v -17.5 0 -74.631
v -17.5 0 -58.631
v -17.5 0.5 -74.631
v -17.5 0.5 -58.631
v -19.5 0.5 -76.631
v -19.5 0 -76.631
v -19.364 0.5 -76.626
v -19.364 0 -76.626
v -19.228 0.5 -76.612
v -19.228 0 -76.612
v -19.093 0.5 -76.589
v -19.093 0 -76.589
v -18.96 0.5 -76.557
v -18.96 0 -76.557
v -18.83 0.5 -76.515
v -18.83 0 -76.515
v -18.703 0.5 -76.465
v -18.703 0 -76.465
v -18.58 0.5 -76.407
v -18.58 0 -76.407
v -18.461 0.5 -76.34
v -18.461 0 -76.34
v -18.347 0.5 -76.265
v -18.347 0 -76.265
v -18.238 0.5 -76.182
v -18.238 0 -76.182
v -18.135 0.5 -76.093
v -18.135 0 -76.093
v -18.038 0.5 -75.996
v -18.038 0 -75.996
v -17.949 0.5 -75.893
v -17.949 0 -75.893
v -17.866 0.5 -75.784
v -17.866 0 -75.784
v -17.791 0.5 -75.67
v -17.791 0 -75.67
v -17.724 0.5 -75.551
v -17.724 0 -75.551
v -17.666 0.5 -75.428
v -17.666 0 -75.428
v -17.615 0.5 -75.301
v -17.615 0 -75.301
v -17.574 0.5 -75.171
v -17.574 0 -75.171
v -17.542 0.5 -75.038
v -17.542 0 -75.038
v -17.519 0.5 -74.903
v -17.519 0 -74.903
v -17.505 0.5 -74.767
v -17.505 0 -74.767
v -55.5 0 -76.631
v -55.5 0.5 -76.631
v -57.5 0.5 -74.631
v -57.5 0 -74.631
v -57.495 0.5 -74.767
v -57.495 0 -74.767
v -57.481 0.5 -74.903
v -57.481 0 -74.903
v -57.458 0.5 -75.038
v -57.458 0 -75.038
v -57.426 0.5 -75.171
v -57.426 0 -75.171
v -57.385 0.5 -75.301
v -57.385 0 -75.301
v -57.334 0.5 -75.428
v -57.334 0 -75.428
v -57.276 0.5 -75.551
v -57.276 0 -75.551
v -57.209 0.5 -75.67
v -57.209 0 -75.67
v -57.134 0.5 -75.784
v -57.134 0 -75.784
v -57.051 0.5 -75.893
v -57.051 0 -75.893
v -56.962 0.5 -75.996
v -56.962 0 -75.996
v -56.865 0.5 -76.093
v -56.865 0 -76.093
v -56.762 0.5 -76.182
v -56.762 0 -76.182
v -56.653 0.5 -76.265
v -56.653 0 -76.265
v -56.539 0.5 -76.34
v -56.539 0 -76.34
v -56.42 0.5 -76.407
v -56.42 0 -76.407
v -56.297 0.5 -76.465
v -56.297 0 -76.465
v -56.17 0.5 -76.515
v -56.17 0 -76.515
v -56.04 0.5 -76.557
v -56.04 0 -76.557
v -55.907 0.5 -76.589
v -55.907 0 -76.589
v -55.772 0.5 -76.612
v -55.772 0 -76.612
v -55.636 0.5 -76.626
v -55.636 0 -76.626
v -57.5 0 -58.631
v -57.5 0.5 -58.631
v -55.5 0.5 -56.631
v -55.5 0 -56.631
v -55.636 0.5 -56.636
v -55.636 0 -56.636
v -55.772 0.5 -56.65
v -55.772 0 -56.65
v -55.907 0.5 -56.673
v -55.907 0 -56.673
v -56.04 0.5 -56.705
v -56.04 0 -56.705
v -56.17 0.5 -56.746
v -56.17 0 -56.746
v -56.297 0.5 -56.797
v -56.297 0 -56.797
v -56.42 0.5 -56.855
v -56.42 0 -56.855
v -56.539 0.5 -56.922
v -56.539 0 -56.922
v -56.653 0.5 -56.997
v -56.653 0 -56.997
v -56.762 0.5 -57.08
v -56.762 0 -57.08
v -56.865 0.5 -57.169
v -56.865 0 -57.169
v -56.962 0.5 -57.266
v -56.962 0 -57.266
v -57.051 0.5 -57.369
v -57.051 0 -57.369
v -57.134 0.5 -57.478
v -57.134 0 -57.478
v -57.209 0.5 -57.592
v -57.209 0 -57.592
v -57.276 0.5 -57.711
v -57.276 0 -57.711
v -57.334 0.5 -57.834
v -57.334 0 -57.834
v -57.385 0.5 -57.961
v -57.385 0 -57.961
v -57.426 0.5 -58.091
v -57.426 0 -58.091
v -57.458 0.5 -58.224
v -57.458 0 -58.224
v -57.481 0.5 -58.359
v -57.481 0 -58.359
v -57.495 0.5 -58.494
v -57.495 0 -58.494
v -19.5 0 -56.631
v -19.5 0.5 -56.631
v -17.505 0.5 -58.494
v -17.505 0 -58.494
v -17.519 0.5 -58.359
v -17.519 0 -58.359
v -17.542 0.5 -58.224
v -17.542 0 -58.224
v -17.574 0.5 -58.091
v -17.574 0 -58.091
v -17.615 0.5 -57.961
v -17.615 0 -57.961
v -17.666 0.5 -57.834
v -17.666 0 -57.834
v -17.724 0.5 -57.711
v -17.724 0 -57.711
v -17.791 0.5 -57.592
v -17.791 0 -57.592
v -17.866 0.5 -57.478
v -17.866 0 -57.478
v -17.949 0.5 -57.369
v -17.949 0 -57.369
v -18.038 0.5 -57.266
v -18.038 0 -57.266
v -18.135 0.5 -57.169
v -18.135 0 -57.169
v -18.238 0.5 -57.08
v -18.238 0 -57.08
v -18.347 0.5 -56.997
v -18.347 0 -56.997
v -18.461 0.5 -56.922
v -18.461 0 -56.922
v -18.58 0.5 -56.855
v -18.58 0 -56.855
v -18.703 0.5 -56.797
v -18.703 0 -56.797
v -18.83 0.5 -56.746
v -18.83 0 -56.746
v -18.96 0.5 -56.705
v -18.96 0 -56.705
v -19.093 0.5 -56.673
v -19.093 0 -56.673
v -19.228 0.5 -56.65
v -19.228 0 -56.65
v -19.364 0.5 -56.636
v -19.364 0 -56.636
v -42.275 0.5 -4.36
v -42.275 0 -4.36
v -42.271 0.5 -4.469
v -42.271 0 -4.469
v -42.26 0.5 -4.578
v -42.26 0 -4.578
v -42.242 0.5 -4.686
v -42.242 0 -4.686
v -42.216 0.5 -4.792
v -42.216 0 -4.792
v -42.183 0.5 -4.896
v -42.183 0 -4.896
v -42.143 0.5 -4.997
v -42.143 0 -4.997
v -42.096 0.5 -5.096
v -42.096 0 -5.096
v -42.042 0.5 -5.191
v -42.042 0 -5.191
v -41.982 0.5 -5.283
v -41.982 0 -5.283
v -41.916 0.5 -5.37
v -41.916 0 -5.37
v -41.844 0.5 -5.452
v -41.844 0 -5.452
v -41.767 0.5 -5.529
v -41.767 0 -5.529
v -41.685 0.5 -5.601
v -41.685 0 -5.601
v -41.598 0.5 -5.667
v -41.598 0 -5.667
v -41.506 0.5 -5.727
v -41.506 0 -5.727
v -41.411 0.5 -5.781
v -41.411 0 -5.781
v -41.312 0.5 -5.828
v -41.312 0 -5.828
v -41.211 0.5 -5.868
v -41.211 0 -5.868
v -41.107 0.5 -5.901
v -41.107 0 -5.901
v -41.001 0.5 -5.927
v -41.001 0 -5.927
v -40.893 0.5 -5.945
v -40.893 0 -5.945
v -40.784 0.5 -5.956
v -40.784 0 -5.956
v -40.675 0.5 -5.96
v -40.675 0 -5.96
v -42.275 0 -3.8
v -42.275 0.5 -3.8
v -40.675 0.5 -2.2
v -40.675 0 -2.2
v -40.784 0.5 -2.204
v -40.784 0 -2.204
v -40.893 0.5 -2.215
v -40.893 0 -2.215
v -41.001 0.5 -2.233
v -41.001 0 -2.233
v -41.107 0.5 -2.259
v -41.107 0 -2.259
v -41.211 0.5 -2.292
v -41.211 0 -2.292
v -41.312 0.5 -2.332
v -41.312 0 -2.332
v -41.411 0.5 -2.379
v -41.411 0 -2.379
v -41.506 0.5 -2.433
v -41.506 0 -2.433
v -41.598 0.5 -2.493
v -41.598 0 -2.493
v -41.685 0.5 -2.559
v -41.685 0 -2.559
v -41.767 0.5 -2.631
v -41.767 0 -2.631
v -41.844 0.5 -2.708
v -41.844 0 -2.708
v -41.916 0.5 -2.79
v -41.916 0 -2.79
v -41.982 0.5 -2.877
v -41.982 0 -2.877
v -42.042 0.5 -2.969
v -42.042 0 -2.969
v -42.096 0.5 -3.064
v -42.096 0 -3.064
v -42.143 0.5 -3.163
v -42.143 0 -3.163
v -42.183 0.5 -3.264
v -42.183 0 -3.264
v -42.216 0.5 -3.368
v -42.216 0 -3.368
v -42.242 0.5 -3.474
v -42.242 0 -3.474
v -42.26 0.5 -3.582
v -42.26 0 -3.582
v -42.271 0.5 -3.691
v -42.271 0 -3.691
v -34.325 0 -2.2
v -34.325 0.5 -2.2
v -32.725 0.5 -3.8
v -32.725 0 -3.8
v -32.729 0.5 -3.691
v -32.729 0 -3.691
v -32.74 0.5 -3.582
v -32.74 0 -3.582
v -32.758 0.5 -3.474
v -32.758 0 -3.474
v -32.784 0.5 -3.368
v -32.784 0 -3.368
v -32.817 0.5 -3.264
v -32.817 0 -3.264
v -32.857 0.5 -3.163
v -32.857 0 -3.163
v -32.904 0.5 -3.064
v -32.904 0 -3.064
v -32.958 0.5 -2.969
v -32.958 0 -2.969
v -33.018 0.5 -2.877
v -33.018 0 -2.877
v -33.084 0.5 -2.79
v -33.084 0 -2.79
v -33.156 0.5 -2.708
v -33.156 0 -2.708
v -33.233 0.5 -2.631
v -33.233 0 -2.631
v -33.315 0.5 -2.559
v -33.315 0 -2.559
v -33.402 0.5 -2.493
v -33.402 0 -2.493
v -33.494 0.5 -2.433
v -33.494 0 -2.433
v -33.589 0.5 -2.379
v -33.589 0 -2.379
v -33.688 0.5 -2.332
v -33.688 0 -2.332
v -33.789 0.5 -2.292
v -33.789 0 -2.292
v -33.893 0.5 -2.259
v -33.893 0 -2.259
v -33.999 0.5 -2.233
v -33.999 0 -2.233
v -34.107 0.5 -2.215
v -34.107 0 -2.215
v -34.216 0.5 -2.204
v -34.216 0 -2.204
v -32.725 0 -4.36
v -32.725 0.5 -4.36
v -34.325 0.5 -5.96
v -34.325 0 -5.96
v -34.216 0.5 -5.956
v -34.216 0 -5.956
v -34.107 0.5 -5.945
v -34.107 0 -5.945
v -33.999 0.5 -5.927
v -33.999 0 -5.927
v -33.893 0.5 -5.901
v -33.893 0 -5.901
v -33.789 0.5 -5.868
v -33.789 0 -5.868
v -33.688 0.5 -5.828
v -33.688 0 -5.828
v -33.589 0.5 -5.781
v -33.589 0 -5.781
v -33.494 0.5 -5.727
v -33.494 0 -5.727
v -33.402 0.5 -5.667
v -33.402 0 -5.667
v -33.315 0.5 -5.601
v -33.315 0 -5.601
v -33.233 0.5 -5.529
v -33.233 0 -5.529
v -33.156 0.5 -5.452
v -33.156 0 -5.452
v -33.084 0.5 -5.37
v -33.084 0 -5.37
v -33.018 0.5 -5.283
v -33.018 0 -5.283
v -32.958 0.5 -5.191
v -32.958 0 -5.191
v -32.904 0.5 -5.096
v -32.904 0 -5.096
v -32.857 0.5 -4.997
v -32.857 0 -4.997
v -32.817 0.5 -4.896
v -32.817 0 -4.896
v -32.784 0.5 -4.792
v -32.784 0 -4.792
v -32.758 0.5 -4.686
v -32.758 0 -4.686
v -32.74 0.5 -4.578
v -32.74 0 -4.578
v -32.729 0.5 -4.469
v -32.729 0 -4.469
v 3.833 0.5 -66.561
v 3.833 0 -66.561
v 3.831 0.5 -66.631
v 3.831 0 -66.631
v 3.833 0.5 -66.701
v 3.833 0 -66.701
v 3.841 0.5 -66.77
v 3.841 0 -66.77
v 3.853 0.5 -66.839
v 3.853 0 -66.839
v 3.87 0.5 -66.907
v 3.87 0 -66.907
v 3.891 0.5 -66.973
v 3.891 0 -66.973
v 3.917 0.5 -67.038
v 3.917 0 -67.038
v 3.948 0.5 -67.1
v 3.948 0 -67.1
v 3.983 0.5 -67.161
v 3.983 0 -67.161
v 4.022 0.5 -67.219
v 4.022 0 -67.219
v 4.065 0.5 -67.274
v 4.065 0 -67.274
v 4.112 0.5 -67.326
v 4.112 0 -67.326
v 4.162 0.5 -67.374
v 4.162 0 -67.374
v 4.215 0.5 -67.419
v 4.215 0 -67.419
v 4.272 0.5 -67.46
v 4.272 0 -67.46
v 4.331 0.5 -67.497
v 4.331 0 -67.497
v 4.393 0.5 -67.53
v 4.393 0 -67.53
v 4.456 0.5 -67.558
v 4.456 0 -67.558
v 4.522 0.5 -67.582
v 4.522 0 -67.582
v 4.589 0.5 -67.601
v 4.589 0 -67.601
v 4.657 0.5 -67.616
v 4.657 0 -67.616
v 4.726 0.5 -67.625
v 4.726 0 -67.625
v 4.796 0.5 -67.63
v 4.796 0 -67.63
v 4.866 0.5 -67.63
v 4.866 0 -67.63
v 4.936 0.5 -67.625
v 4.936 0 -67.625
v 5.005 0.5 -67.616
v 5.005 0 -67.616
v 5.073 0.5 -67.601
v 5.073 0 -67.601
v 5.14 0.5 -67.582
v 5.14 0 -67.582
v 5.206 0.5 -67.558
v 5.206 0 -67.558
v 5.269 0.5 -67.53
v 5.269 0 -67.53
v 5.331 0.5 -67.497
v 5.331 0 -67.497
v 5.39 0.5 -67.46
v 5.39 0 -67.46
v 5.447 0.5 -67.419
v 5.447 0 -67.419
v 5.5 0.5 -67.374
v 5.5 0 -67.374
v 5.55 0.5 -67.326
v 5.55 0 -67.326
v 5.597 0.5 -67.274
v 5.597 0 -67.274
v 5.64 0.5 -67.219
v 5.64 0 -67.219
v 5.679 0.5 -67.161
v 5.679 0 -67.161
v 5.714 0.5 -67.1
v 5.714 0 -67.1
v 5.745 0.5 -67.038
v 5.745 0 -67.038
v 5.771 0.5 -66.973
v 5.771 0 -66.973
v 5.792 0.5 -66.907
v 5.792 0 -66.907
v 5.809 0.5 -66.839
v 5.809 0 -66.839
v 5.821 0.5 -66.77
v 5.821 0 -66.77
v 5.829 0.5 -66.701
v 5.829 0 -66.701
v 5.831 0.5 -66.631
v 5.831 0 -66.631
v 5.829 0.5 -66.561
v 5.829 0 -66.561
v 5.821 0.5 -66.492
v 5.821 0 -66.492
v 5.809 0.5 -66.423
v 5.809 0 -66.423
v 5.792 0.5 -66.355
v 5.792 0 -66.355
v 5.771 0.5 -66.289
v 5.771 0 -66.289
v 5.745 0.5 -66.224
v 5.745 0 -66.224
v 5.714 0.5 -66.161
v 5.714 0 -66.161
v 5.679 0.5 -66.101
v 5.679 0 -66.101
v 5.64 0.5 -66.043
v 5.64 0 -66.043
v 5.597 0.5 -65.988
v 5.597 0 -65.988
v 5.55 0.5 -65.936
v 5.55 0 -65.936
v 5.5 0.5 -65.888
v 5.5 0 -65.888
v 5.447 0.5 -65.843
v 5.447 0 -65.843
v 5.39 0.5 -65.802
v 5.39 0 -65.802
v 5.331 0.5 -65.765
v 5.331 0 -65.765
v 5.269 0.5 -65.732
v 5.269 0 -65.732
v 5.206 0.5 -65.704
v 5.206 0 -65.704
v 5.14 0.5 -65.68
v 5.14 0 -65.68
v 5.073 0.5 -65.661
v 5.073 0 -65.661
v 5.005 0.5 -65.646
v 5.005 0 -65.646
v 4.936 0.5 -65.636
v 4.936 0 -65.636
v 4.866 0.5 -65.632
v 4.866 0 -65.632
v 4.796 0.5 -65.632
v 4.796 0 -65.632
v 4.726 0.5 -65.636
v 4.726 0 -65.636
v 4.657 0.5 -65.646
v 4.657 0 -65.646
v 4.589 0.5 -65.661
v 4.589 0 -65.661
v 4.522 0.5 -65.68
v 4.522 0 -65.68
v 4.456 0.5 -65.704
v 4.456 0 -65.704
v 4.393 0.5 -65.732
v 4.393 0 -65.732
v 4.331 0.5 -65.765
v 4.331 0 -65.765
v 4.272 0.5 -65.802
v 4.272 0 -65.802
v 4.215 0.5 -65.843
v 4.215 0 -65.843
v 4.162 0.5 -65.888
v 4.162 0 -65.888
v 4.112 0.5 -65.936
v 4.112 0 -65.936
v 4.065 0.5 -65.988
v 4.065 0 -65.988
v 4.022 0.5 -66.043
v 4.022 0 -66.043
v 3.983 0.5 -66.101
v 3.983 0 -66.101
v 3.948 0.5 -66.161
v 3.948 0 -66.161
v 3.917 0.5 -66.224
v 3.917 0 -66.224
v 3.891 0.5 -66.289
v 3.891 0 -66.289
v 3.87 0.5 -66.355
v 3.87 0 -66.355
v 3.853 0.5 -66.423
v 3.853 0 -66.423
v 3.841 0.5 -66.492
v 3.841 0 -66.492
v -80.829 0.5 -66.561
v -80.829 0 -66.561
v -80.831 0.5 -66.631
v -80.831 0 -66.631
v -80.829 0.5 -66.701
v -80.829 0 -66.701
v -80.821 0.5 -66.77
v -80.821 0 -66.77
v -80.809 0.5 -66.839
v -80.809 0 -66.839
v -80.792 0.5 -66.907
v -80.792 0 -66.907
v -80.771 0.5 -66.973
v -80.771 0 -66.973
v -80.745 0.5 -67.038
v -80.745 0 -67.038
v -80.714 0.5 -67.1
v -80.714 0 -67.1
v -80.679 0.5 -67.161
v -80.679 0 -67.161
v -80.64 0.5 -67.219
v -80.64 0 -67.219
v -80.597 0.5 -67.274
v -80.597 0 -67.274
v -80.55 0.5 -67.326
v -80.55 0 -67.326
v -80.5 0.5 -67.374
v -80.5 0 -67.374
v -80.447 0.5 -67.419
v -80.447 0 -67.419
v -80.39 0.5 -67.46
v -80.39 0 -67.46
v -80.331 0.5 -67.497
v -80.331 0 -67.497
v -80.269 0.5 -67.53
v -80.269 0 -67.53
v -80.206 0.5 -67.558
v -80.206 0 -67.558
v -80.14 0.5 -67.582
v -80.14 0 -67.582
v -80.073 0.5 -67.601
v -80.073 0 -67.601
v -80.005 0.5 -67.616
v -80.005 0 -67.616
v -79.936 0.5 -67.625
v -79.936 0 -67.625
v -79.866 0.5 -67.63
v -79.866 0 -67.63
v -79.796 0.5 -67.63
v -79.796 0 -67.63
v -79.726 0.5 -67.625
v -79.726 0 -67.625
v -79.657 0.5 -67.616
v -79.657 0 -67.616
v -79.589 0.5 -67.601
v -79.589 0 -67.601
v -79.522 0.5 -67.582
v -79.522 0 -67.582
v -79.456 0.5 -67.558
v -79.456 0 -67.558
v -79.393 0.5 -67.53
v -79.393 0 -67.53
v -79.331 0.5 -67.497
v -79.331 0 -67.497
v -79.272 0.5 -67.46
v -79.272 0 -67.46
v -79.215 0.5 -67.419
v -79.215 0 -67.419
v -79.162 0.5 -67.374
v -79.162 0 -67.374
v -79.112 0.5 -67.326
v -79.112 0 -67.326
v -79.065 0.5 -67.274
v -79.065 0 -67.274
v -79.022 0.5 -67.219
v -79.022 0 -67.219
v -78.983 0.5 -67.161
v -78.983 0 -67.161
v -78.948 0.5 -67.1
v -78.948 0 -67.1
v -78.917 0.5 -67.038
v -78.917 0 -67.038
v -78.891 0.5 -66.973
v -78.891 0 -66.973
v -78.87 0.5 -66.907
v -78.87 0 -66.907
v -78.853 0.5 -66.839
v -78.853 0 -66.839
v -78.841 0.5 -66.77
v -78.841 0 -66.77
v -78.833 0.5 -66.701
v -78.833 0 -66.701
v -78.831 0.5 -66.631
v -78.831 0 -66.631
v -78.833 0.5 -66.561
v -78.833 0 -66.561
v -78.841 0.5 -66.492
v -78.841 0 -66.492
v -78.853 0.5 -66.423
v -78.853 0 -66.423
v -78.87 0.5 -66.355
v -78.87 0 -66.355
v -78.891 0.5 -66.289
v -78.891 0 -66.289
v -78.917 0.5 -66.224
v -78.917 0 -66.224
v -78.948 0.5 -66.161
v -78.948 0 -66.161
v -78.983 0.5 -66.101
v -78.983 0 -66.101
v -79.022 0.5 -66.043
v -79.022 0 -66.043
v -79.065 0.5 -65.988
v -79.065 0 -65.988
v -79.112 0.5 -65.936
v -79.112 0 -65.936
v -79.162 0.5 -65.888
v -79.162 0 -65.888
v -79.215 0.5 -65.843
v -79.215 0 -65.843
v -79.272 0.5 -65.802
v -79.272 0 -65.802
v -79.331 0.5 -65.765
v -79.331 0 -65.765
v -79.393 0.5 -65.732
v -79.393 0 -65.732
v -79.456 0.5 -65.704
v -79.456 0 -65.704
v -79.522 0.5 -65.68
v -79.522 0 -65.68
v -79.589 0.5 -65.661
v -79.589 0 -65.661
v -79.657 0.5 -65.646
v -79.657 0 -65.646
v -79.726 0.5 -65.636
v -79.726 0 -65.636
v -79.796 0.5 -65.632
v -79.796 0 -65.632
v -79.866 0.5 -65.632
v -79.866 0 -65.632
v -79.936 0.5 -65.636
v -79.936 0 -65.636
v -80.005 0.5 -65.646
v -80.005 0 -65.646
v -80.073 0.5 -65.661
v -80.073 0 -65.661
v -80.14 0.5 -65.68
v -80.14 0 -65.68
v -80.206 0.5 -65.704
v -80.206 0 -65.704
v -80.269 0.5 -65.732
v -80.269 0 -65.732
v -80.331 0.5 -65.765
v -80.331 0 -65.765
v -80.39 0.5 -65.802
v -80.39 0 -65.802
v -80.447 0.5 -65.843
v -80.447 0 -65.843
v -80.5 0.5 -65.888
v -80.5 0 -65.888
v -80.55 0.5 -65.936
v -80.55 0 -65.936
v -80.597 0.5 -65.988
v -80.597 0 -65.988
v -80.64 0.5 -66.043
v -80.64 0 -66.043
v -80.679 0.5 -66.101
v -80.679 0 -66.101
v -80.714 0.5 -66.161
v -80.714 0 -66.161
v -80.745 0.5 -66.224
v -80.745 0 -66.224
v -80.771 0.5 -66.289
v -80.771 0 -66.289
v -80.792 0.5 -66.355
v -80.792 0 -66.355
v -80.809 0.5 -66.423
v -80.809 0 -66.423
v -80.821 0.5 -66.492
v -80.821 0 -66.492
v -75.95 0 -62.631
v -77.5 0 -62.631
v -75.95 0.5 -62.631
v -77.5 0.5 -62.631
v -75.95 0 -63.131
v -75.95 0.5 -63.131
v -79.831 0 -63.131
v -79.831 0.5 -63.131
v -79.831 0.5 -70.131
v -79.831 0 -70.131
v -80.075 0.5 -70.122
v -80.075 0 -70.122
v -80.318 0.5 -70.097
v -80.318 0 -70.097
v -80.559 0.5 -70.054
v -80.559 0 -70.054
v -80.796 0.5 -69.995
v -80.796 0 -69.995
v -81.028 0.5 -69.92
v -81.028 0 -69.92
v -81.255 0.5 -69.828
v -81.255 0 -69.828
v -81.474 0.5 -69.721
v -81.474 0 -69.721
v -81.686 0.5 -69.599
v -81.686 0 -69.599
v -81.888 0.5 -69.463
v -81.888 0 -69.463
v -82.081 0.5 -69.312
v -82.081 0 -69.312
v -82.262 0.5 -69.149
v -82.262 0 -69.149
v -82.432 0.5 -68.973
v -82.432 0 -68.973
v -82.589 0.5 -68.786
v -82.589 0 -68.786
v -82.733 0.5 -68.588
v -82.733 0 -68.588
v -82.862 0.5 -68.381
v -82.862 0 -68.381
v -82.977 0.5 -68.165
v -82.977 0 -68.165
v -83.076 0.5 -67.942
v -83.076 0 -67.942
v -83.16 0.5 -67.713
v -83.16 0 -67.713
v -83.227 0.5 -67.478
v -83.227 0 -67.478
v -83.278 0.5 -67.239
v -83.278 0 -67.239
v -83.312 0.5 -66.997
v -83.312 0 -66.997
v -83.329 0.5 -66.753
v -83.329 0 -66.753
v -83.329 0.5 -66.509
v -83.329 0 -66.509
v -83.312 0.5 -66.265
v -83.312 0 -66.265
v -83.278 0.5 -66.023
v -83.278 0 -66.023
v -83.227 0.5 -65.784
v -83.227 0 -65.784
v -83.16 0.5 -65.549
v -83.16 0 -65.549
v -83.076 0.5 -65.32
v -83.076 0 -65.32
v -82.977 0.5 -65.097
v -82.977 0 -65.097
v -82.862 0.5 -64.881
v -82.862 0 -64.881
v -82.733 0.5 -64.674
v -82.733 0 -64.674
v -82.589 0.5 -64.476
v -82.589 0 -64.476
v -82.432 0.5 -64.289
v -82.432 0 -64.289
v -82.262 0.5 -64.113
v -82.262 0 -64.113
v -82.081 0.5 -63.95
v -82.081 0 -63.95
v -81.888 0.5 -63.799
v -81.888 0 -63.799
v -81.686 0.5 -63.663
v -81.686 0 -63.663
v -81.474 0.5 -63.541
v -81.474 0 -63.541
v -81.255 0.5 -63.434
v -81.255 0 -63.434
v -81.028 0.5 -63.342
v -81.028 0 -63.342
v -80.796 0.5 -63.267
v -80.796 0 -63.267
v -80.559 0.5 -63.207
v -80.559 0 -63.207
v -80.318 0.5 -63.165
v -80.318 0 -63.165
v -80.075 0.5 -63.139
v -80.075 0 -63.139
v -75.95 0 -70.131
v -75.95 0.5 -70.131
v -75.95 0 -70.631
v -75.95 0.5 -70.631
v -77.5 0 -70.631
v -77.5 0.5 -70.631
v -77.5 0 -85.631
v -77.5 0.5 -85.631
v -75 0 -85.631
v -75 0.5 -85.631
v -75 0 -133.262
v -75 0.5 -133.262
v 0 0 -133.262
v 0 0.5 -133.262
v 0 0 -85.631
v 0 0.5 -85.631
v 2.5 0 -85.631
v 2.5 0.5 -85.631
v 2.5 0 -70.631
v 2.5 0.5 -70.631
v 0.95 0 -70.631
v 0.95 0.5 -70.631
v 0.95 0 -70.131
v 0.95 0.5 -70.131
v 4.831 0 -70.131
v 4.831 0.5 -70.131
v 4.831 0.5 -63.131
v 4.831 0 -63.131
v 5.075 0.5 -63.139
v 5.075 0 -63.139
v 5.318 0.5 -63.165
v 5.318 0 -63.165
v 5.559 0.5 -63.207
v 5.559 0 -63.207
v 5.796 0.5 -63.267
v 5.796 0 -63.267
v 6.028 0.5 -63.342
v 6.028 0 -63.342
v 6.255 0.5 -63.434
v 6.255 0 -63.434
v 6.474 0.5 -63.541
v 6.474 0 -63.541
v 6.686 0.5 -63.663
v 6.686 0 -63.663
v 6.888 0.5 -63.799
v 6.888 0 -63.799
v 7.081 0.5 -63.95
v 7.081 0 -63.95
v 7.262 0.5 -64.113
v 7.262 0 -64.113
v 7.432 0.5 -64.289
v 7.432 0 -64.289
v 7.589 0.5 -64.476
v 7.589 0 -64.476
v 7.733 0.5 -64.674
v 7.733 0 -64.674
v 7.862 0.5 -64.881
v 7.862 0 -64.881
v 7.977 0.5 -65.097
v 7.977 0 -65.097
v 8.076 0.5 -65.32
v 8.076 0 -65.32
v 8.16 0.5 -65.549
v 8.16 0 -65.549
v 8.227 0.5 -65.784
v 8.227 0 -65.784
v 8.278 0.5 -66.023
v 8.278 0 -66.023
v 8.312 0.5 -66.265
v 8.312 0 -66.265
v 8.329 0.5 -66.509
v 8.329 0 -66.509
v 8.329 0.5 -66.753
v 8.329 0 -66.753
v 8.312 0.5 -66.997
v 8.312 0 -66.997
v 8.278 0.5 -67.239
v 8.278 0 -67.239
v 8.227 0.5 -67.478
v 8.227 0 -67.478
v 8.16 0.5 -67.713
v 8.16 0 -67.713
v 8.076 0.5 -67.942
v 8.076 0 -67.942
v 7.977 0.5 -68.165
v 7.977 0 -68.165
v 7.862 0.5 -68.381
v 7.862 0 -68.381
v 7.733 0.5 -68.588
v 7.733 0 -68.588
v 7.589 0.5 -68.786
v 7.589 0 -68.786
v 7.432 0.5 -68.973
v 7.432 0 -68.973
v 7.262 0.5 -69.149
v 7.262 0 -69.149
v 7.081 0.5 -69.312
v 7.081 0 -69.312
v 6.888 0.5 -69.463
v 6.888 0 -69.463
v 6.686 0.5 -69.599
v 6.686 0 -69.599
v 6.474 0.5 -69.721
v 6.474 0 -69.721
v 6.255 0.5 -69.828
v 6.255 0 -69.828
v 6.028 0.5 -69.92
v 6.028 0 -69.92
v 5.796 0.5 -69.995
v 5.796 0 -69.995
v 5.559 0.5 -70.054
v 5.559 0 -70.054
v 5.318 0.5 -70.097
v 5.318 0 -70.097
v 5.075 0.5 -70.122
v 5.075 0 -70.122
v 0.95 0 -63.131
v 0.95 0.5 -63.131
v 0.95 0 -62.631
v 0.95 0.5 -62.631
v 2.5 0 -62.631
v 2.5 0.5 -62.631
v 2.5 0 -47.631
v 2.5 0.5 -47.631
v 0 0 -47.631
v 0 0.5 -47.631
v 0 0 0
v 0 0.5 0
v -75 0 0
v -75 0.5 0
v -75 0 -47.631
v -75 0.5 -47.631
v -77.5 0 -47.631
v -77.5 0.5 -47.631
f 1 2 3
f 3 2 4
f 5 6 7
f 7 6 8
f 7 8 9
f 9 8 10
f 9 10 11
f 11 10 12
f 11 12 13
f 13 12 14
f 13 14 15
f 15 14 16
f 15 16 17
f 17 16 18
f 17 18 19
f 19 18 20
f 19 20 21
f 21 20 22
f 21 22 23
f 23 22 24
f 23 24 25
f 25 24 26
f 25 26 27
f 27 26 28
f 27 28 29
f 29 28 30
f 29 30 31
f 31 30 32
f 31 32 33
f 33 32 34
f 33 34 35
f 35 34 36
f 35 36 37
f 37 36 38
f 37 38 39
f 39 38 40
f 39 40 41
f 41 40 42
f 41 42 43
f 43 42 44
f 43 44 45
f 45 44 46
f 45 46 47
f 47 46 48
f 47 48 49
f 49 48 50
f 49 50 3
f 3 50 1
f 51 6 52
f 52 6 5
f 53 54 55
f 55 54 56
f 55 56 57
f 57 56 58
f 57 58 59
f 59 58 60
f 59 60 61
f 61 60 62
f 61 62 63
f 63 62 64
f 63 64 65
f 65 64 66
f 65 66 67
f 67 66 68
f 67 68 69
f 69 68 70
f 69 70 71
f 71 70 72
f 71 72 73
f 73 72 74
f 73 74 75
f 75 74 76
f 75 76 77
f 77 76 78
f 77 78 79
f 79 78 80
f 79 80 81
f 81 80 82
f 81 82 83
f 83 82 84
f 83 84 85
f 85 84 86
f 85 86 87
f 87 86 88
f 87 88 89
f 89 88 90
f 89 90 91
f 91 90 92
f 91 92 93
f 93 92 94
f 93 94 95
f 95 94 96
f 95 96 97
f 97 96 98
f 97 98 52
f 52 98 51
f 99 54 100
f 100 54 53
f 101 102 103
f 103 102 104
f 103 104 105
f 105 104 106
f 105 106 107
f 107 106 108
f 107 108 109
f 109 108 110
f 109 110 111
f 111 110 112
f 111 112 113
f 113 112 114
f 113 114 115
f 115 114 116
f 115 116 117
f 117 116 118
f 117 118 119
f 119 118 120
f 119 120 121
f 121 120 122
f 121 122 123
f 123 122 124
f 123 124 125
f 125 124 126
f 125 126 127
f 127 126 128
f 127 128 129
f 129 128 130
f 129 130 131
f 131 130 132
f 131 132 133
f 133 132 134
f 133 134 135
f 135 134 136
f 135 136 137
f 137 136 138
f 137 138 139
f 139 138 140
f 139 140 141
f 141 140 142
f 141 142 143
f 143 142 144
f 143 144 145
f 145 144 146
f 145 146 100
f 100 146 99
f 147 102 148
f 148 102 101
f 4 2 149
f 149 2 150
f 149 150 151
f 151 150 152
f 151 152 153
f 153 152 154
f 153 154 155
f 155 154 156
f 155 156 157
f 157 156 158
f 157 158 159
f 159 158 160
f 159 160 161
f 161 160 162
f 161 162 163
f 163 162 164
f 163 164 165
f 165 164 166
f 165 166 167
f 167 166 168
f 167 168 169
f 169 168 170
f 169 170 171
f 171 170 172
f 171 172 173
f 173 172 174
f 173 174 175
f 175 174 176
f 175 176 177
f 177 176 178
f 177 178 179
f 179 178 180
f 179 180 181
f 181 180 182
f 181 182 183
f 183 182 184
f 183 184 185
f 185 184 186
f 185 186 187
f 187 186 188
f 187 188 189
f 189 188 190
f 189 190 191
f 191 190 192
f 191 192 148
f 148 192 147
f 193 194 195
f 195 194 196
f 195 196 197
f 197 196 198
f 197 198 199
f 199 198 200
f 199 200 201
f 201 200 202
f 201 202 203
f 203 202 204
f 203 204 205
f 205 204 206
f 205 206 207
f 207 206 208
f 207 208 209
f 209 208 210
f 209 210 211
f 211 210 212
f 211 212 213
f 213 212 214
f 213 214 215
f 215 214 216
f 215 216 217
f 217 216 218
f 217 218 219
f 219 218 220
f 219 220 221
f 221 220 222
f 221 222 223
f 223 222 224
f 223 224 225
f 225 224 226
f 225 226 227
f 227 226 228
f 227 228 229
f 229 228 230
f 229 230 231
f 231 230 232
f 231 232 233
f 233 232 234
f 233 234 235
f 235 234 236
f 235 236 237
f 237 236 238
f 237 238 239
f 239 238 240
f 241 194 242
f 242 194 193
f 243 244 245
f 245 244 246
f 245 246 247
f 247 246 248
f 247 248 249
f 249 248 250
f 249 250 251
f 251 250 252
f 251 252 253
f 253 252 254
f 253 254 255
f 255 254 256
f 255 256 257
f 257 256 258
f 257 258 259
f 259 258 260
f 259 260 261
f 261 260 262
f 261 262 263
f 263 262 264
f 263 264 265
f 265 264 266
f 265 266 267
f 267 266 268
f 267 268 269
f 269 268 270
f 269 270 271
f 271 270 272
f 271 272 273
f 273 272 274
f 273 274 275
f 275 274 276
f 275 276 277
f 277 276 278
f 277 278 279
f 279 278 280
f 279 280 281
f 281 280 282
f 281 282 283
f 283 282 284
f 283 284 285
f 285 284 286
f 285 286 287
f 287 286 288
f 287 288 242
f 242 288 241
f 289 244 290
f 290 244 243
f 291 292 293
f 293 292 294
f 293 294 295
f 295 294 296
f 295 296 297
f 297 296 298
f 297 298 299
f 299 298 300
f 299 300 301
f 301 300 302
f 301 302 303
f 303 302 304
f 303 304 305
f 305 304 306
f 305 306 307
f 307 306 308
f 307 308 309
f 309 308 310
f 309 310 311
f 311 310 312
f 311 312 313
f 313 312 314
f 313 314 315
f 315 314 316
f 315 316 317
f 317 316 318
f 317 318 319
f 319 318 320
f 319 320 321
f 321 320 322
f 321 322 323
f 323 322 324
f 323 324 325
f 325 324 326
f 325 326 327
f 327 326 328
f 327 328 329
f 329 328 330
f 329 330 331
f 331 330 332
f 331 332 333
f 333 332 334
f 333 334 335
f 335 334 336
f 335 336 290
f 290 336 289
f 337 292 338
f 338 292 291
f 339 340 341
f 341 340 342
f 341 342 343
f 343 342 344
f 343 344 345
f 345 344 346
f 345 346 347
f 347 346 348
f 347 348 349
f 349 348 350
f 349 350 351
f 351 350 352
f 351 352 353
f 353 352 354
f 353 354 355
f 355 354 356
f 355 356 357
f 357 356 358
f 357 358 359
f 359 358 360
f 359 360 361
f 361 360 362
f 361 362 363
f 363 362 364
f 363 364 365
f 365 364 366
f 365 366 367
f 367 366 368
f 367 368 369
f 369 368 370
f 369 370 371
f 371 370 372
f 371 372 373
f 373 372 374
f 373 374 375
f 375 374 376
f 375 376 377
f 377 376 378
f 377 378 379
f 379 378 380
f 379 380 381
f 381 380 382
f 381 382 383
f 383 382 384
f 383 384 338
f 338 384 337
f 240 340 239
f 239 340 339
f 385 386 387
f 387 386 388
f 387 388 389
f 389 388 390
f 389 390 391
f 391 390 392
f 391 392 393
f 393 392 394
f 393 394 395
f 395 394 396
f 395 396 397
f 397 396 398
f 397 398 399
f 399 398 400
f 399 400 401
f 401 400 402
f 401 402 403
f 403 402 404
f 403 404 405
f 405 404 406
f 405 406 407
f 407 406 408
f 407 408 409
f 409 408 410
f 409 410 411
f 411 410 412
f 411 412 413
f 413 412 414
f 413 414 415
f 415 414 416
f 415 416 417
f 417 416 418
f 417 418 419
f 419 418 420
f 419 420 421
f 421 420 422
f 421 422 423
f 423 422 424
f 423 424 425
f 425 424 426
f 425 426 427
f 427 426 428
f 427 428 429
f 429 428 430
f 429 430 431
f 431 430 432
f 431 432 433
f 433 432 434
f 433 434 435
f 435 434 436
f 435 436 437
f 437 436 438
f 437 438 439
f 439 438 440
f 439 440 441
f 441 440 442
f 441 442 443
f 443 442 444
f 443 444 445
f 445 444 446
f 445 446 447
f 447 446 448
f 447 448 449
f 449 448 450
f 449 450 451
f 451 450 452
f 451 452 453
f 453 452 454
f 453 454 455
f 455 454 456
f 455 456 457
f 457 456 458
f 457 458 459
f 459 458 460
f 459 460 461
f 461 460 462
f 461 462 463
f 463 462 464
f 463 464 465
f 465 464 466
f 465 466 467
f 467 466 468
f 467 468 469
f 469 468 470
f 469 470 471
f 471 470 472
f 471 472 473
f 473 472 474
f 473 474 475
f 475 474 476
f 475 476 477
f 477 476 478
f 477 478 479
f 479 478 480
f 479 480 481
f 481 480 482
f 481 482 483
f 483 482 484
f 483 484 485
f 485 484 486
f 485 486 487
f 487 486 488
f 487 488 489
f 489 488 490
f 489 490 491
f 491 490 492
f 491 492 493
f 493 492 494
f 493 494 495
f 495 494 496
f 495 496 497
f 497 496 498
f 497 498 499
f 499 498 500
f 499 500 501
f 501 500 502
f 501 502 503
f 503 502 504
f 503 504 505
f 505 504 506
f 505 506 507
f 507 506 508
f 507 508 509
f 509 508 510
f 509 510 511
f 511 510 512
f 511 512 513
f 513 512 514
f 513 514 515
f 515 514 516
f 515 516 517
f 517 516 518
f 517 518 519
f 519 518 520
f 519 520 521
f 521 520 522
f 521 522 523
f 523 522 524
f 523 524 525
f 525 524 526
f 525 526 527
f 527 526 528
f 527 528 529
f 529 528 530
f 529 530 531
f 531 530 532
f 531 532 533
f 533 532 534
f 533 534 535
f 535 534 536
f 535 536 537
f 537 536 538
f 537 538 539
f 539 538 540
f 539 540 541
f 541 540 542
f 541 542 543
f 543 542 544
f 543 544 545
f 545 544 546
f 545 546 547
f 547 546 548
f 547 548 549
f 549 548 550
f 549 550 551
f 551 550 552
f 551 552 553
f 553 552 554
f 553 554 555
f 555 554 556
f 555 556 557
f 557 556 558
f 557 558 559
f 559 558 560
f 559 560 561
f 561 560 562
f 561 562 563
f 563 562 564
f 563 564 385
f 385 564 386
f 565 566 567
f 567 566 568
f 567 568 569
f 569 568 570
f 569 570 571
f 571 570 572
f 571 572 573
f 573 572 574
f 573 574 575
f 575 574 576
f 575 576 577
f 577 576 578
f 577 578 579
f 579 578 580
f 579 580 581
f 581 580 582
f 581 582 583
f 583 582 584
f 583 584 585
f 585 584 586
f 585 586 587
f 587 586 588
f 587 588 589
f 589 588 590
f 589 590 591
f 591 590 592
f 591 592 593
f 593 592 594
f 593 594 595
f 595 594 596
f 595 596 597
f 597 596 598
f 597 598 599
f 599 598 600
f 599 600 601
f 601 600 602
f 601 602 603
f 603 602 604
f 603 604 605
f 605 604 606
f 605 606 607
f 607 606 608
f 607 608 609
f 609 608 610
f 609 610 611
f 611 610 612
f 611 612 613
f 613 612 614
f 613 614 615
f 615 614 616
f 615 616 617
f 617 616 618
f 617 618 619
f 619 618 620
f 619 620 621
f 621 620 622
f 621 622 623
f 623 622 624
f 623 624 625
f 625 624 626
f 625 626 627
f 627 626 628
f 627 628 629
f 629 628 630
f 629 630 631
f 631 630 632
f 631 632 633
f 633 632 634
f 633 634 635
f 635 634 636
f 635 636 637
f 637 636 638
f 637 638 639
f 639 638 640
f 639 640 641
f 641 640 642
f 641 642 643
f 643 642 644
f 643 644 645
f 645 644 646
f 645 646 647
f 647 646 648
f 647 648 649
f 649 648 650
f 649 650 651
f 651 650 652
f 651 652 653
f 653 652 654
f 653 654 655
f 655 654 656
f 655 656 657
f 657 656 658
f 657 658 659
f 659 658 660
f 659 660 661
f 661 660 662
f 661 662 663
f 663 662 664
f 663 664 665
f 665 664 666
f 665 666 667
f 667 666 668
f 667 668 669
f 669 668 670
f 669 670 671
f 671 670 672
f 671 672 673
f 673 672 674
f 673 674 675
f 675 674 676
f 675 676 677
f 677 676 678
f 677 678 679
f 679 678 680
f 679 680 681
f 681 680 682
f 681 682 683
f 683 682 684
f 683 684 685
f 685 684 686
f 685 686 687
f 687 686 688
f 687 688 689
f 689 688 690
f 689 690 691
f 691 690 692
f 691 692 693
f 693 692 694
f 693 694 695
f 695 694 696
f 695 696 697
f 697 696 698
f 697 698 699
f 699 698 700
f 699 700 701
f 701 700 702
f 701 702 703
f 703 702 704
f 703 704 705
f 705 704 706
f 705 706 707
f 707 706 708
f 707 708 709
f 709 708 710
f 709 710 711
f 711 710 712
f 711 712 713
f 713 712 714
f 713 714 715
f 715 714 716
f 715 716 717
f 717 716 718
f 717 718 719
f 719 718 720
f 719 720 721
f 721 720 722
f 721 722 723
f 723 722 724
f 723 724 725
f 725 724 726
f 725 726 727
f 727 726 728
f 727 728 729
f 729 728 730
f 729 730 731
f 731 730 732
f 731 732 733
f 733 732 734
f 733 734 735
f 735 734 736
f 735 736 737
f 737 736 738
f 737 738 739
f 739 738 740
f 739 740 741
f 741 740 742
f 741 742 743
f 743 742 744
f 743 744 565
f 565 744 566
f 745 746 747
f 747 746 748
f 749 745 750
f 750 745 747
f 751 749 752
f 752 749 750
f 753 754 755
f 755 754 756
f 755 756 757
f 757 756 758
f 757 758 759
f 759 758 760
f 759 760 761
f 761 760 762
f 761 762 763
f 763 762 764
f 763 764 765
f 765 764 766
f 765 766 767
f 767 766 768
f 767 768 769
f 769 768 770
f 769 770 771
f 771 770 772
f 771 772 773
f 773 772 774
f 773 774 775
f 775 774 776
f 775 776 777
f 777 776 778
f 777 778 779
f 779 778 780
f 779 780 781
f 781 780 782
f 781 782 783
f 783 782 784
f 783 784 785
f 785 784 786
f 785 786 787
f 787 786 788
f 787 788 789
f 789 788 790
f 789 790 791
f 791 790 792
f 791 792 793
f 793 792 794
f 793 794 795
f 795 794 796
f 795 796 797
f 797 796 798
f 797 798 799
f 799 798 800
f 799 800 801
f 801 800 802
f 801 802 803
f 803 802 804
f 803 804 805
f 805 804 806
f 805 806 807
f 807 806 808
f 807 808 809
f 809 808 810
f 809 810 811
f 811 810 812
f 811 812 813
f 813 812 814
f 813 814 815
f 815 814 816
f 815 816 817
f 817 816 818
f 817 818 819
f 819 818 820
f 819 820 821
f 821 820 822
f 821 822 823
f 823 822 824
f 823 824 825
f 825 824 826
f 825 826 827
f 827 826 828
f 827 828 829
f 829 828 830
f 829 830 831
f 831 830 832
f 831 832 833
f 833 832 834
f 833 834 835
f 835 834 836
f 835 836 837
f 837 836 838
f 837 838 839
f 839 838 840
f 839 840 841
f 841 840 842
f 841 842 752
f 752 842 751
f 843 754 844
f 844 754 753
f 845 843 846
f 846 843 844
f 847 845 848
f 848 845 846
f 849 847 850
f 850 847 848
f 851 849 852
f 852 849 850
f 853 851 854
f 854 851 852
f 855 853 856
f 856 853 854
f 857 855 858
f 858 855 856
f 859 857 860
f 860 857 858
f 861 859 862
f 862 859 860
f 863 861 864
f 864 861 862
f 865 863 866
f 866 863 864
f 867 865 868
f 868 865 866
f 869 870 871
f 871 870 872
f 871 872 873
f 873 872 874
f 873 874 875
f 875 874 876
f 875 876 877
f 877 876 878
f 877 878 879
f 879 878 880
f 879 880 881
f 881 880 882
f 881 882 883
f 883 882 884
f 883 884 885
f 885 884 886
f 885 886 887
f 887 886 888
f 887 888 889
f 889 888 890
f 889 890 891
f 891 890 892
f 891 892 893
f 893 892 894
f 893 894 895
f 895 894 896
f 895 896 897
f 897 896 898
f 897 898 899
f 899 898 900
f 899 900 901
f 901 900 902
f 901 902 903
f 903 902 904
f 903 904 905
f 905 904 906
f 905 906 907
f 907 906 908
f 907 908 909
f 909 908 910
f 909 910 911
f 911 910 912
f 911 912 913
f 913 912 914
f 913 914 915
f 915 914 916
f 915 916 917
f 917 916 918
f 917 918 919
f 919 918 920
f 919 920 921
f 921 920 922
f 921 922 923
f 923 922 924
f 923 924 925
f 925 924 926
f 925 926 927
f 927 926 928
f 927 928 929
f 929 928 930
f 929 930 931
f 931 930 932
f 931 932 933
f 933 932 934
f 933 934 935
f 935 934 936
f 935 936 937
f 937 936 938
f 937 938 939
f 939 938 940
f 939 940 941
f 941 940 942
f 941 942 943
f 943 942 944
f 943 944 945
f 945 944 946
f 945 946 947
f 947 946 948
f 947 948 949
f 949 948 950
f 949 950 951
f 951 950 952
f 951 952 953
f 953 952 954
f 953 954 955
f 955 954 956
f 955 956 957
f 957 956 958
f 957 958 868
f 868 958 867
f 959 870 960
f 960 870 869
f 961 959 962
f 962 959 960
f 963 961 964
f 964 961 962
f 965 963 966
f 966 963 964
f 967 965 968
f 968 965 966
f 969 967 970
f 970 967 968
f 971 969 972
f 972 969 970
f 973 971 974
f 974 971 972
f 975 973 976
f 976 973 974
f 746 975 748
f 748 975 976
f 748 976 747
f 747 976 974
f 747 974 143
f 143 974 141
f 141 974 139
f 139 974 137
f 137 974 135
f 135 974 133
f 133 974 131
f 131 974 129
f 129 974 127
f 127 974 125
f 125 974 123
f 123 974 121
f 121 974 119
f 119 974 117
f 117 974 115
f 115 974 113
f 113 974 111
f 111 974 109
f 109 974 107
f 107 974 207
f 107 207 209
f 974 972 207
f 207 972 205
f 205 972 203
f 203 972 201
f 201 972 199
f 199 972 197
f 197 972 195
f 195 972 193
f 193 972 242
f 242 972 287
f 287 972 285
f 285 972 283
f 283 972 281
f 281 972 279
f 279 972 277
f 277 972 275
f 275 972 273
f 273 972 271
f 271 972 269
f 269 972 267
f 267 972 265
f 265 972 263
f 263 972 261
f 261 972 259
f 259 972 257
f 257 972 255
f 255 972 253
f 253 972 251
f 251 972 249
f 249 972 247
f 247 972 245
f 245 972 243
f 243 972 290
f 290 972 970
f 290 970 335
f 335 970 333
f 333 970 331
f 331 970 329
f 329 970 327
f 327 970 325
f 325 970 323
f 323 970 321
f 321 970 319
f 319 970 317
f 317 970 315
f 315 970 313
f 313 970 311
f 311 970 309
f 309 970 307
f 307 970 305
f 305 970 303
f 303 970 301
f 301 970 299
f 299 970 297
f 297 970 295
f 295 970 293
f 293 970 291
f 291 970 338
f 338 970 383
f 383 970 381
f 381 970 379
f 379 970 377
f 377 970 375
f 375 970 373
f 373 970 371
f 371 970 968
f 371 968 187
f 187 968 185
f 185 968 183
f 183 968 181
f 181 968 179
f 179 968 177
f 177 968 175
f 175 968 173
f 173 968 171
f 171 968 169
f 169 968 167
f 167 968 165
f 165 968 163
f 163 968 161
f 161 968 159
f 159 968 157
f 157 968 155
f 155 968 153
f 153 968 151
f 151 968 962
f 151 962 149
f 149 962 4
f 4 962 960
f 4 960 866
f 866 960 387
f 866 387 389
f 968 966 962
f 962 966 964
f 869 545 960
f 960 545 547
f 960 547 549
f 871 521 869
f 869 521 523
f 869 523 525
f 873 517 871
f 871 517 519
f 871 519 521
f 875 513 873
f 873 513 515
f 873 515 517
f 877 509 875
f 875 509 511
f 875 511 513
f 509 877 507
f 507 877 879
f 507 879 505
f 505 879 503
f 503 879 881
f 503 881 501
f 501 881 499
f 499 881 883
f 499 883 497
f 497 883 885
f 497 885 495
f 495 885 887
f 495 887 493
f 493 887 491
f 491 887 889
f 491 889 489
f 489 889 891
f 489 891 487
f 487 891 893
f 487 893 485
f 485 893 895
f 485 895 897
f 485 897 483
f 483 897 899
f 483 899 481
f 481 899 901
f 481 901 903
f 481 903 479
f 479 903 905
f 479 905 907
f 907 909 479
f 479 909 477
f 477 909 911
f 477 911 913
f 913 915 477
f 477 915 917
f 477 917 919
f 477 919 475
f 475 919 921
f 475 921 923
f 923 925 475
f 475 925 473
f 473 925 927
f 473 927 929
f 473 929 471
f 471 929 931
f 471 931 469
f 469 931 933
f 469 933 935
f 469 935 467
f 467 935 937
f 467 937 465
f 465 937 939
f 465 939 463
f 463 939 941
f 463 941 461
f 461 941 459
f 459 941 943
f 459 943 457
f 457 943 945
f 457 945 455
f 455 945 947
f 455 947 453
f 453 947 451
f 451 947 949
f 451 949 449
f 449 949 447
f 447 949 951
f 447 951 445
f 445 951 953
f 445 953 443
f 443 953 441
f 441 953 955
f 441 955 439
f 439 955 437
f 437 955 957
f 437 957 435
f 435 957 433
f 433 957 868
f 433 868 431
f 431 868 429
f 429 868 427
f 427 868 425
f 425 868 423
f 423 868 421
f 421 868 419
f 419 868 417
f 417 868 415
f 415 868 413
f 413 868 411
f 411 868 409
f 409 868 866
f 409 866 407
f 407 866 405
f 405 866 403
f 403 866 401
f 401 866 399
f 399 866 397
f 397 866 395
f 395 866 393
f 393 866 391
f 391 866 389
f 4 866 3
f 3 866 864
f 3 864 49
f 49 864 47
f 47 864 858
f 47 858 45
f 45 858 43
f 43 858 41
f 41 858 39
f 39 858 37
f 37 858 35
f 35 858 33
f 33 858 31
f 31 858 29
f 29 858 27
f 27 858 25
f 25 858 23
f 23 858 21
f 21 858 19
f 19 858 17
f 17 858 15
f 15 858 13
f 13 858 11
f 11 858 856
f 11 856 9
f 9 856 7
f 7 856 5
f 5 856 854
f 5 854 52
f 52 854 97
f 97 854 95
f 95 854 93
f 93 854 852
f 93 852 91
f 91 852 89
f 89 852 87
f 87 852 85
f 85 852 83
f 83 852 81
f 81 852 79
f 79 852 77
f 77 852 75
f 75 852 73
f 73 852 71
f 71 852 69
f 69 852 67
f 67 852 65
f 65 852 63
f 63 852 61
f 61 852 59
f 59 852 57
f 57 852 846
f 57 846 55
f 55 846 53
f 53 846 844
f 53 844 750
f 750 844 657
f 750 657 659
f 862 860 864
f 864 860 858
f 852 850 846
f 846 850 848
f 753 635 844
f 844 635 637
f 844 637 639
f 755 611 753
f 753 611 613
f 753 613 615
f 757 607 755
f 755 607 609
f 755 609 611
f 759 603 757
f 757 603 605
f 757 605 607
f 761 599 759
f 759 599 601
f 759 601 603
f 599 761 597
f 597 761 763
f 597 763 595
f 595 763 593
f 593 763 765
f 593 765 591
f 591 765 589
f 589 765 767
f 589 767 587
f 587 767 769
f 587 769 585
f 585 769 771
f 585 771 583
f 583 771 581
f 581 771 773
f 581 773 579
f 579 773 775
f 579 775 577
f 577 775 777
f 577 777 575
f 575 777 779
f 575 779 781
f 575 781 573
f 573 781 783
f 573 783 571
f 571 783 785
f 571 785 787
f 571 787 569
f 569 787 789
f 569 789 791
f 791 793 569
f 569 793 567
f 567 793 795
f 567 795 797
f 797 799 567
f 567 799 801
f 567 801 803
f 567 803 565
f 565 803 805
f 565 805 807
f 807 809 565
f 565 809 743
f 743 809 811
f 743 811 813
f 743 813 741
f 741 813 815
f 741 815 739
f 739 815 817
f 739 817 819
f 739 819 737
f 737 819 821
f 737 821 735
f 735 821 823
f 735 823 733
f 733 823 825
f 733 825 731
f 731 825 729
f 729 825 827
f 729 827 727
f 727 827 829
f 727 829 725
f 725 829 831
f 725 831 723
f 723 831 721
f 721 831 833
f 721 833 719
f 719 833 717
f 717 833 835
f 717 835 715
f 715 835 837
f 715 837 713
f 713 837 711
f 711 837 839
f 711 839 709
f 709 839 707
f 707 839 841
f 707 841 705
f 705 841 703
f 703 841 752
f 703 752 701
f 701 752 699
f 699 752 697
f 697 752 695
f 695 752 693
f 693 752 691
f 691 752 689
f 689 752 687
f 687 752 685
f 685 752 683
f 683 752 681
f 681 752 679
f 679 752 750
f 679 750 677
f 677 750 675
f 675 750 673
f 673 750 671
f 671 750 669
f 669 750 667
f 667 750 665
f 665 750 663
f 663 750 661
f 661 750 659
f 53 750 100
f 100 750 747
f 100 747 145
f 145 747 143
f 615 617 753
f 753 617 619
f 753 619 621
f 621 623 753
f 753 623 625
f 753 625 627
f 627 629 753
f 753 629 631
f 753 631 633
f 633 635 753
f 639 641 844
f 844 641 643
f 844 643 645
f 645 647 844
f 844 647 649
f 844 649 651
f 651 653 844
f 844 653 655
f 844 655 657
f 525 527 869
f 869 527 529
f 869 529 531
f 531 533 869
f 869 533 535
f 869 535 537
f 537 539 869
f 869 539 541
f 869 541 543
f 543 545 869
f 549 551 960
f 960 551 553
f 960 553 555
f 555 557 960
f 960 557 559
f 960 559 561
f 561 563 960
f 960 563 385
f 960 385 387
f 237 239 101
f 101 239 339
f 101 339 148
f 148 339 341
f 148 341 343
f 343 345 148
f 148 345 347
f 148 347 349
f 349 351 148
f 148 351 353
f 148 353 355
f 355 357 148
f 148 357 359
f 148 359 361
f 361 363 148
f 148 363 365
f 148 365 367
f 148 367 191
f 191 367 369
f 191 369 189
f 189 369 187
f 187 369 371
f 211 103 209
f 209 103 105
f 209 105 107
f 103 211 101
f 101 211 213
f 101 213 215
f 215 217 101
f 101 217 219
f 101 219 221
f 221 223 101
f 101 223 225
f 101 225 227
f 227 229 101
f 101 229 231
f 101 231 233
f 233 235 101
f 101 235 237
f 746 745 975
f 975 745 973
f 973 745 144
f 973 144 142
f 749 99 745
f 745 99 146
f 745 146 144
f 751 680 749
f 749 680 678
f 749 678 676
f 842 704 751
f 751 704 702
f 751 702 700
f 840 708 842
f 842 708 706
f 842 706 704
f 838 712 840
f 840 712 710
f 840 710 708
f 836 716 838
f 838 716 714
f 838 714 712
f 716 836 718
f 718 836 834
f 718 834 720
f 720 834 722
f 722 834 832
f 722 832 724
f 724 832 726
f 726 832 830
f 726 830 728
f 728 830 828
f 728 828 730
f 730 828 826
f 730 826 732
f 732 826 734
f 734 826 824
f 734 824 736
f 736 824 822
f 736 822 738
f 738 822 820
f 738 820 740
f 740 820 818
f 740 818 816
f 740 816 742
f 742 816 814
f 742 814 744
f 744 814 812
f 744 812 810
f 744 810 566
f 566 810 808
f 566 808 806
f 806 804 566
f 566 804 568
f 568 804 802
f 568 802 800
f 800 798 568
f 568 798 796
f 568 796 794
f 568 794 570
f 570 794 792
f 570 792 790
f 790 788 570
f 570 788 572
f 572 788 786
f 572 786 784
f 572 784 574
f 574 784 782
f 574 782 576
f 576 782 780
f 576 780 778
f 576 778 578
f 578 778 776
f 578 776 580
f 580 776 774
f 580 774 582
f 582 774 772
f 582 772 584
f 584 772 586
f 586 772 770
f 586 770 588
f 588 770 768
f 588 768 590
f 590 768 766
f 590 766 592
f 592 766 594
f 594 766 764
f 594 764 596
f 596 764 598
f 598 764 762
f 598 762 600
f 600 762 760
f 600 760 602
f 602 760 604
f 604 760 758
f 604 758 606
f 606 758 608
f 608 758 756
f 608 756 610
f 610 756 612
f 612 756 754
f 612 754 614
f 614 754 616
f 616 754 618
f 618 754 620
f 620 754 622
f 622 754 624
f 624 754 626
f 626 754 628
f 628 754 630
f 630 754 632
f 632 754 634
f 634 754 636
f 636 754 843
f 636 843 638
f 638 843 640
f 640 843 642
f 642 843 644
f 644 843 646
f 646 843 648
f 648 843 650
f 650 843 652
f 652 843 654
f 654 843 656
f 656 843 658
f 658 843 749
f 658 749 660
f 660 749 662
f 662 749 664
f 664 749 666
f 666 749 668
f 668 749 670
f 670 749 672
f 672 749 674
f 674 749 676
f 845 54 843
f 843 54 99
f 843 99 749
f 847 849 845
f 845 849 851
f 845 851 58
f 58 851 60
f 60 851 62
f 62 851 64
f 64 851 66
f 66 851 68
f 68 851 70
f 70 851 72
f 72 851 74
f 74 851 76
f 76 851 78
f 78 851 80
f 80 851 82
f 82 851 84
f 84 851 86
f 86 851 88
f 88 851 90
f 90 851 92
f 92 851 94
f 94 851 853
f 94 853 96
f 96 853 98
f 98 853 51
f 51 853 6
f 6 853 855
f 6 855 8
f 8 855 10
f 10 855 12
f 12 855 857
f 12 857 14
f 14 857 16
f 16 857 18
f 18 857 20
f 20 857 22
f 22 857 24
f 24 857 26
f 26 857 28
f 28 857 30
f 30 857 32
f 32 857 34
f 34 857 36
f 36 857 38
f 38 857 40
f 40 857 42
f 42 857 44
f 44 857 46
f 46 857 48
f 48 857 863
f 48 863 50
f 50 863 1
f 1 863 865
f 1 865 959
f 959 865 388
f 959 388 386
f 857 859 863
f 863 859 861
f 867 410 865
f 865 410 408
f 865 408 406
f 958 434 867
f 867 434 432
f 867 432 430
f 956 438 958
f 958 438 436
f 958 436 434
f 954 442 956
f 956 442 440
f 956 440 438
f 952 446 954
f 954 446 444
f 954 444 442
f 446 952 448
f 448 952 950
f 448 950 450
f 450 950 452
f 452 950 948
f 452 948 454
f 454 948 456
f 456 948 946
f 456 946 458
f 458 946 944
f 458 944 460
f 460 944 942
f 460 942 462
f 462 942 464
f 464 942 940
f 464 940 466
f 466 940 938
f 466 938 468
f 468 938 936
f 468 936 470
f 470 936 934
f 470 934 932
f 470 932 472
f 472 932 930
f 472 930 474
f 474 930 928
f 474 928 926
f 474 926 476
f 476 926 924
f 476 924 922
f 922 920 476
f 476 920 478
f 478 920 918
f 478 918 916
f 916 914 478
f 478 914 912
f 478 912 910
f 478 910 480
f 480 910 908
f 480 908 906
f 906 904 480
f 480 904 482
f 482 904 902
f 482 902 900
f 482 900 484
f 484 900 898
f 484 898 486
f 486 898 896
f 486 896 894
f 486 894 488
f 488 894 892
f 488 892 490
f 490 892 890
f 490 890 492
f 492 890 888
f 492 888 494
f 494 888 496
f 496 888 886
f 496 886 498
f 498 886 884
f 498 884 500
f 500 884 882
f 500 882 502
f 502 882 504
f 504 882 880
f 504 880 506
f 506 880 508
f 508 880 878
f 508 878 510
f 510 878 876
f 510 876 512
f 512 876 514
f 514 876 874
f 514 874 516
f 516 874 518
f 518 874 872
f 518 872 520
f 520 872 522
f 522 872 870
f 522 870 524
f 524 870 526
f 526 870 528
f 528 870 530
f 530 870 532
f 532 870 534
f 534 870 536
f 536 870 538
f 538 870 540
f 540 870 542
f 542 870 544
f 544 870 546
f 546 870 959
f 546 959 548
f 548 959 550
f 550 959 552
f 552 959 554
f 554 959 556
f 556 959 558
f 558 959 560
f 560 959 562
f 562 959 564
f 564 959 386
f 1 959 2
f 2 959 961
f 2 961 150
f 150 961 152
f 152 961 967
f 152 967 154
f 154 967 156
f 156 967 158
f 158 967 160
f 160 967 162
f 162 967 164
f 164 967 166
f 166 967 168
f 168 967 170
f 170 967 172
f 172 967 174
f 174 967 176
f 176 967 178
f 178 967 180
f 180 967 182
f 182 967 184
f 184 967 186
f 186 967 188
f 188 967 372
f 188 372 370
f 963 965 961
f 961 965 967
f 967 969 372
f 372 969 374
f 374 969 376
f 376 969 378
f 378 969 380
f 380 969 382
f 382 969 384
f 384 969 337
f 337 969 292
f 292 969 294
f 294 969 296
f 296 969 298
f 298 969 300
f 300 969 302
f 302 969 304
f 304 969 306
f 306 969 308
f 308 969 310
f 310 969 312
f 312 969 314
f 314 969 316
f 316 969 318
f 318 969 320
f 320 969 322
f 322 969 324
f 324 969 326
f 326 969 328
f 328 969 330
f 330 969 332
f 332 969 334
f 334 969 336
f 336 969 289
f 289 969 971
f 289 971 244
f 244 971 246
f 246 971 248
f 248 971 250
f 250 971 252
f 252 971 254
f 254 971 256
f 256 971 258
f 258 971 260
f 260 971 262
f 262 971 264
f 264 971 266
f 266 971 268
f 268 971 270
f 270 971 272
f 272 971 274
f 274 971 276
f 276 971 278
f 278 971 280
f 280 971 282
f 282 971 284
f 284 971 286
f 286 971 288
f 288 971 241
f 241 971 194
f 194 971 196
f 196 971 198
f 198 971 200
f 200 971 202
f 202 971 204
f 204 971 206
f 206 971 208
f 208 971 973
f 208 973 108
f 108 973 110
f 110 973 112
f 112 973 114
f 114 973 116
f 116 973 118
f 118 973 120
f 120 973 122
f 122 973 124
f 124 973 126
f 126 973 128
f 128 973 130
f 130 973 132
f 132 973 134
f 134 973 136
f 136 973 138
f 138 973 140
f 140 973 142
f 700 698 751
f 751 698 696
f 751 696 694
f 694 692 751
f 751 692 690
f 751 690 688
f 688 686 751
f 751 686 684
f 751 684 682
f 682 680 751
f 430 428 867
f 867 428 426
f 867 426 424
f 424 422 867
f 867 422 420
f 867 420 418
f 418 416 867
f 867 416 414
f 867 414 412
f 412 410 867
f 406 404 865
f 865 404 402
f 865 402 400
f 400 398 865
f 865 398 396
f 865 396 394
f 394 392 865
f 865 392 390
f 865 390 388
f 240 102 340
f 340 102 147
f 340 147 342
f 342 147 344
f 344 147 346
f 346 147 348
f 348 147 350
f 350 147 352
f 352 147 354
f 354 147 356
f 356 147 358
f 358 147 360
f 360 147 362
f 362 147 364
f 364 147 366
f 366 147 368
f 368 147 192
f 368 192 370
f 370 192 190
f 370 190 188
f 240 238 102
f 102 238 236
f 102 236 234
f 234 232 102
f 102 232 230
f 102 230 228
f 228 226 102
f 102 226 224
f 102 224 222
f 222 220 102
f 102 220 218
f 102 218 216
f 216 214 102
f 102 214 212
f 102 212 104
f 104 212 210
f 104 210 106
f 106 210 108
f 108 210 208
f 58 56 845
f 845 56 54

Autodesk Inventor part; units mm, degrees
ref_plane "YZ Plane" through (0, 0, 0) normal (1, 0, 0) x (0, 1, 0)
ref_plane "XZ Plane" through (0, 0, 0) normal (0, 1, 0) x (-1, 0, 0)
ref_plane "XY Plane" through (0, 0, 0) normal (0, 0, 1) x (1, 0, 0)
sketch "Эскиз1" plane through (0, 0, 0) normal (0, 1, 0) x (-1, 0, 0)
  line L0 (42.275, -3.8) -> (42.275, -4.36)
  arc A0 (40.675, -5.96) -> (42.275, -4.36) centre (40.675, -4.36) ccw
  line L1 (40.675, -5.96) -> (34.325, -5.96)
  arc A1 (32.725, -4.36) -> (34.325, -5.96) centre (34.325, -4.36) ccw
  line L2 (32.725, -4.36) -> (32.725, -3.8)
  arc A2 (34.325, -2.2) -> (32.725, -3.8) centre (34.325, -3.8) ccw
  line L3 (34.325, -2.2) -> (40.675, -2.2)
  arc A3 (42.275, -3.8) -> (40.675, -2.2) centre (40.675, -3.8) ccw
  arc A4 (55.5, -76.631) -> (57.5, -74.631) centre (55.5, -74.631) ccw
  line L4 (55.5, -76.631) -> (19.5, -76.631)
  arc A5 (17.5, -74.631) -> (19.5, -76.631) centre (19.5, -74.631) ccw
  line L5 (17.5, -74.631) -> (17.5, -58.631)
  arc A6 (19.5, -56.631) -> (17.5, -58.631) centre (19.5, -58.631) ccw
  line L6 (19.5, -56.631) -> (55.5, -56.631)
  arc A7 (57.5, -58.631) -> (55.5, -56.631) centre (55.5, -58.631) ccw
  line L7 (57.5, -58.631) -> (57.5, -74.631)
  line L8 (77.5, -85.631) -> (75, -85.631)
  line L9 (75, -47.631) -> (77.5, -47.631)
  line L10 (75, -47.631) -> (75, 0)
  line L11 (75, 0) -> (0, 0)
  line L12 (0, -47.631) -> (0, 0)
  line L13 (-2.5, -47.631) -> (0, -47.631)
  line L14 (0, -85.631) -> (-2.5, -85.631)
  line L15 (0, -85.631) -> (0, -133.2619)
  line L16 (0, -133.2619) -> (75, -133.2619)
  line L17 (75, -85.631) -> (75, -133.2619)
  line L18 (-0.95, -70.631) -> (-2.5, -70.631)
  line L19 (-2.5, -85.631) -> (-2.5, -70.631)
  line L20 (-2.5, -62.631) -> (-2.5, -47.631)
  line L21 (-2.5, -62.631) -> (-0.95, -62.631)
  line L22 (-0.95, -62.631) -> (-0.95, -63.131)
  line L23 (-4.831, -63.131) -> (-0.95, -63.131)
  line L24 (-4.831, -70.131) -> (-0.95, -70.131)
  line L25 (-0.95, -70.131) -> (-0.95, -70.631)
  arc A8 (-4.831, -63.131) -> (-4.831, -70.131) centre (-4.831, -66.631) ccw
  line L26 (77.5, -70.631) -> (77.5, -85.631)
  line L27 (77.5, -70.631) -> (75.95, -70.631)
  line L28 (75.95, -70.631) -> (75.95, -70.131)
  line L29 (79.831, -70.131) -> (75.95, -70.131)
  arc A9 (79.831, -70.131) -> (79.831, -63.131) centre (79.831, -66.631) ccw
  line L30 (79.831, -63.131) -> (75.95, -63.131)
  line L31 (75.95, -63.131) -> (75.95, -62.631)
  line L32 (75.95, -62.631) -> (77.5, -62.631)
  line L33 (77.5, -47.631) -> (77.5, -62.631)
  arc A10 (55.5, -76.631) -> (57.5, -74.631) centre (55.5, -74.631) ccw
  line L34 (57.5, -74.631) -> (57.5, -58.631)
  arc A11 (57.5, -58.631) -> (55.5, -56.631) centre (55.5, -58.631) ccw
  line L35 (55.5, -56.631) -> (19.5, -56.631)
  arc A12 (19.5, -56.631) -> (17.5, -58.631) centre (19.5, -58.631) ccw
  line L36 (17.5, -58.631) -> (17.5, -74.631)
  arc A13 (17.5, -74.631) -> (19.5, -76.631) centre (19.5, -74.631) ccw
  line L37 (19.5, -76.631) -> (55.5, -76.631)
  circle A14 centre (79.831, -66.631) radius 1
  circle A15 centre (-4.831, -66.631) radius 1
  line L38 (42.275, -4.36) -> (42.275, -3.8)
  arc A16 (42.275, -3.8) -> (40.675, -2.2) centre (40.675, -3.8) ccw
  line L39 (40.675, -2.2) -> (34.325, -2.2)
  arc A17 (34.325, -2.2) -> (32.725, -3.8) centre (34.325, -3.8) ccw
  line L40 (32.725, -3.8) -> (32.725, -4.36)
  arc A18 (32.725, -4.36) -> (34.325, -5.96) centre (34.325, -4.36) ccw
  line L41 (34.325, -5.96) -> (40.675, -5.96)
  arc A19 (40.675, -5.96) -> (42.275, -4.36) centre (40.675, -4.36) ccw
  line L42 (0, 0) -> (0, -47.631)
  line L43 (75, 0) -> (0, 0)
  line L44 (75, -47.631) -> (75, 0)
  line L45 (75, -47.631) -> (77.5, -47.631)
  line L46 (77.5, -62.631) -> (77.5, -47.631)
  line L47 (77.5, -62.631) -> (75.95, -62.631)
  line L48 (75.95, -62.631) -> (75.95, -63.131)
  line L49 (75.95, -63.131) -> (79.831, -63.131)
  arc A20 (79.831, -70.131) -> (79.831, -63.131) centre (79.831, -66.631) ccw
  line L50 (79.831, -70.131) -> (75.95, -70.131)
  line L51 (75.95, -70.131) -> (75.95, -70.631)
  line L52 (75.95, -70.631) -> (77.5, -70.631)
  line L53 (77.5, -85.631) -> (77.5, -70.631)
  line L54 (75, -85.631) -> (77.5, -85.631)
  line L55 (75, -133.2619) -> (75, -85.631)
  line L56 (0, -133.2619) -> (75, -133.2619)
  line L57 (0, -85.631) -> (0, -133.2619)
  line L58 (-2.5, -85.631) -> (0, -85.631)
  line L59 (-2.5, -70.631) -> (-2.5, -85.631)
  line L60 (-2.5, -70.631) -> (-0.95, -70.631)
  line L61 (-0.95, -70.631) -> (-0.95, -70.131)
  line L62 (-4.831, -70.131) -> (-0.95, -70.131)
  arc A21 (-4.831, -63.131) -> (-4.831, -70.131) centre (-4.831, -66.631) ccw
  line L63 (-4.831, -63.131) -> (-0.95, -63.131)
  line L64 (-0.95, -63.131) -> (-0.95, -62.631)
  line L65 (-0.95, -62.631) -> (-2.5, -62.631)
  line L66 (-2.5, -47.631) -> (-2.5, -62.631)
  line L67 (-2.5, -47.631) -> (0, -47.631)
  point P0 (40.675, -5.96)
  point P1 (34.325, -5.96)
  point P2 (34.325, -2.2)
extrude "Выдавливание1" add sketch "Эскиз1" along normal blind 0.5
properties part number "metal_body_forPrint"
